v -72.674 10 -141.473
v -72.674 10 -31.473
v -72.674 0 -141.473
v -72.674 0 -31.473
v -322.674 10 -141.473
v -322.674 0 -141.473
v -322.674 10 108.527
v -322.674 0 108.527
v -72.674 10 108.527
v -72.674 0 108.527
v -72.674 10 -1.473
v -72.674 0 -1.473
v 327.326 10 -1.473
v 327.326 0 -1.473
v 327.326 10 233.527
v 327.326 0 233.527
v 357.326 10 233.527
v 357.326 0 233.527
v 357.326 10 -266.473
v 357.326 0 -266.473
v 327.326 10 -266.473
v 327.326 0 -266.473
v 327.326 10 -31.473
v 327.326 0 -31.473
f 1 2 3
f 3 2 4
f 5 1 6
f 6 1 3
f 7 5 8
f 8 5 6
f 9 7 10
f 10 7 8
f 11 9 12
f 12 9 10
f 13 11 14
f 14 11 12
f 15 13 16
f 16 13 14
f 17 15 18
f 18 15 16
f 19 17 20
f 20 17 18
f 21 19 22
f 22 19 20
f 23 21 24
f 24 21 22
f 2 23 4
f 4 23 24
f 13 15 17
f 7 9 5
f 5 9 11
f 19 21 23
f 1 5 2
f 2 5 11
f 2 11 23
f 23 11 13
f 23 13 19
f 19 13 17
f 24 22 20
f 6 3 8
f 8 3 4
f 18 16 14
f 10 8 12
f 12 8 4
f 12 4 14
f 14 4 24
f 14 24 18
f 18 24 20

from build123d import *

# Parameters (mm, degrees)
SKETCH1_W           = 250
SKETCH1_H           = 250
SKETCH1_W_2         = 400
SKETCH1_H_2         = 30
BOSS_EXTRUDE1_DEPTH = 10


with BuildPart() as part:
    # Sketch1 → Boss-Extrude1 (new body)
    with BuildSketch(Plane(origin=(0, 0, 0), x_dir=(1, 0, 0), z_dir=(0, 1, 0))):
        with Locations((-197.674418605, 16.472868217)):
            Rectangle(SKETCH1_W, SKETCH1_H)
        with Locations((127.325581395, 16.472868217)):
            Rectangle(SKETCH1_W_2, SKETCH1_H_2)
        Polygon((327.325581395, 266.472868217), (327.325581395, 31.472868217), (327.325581395, 1.472868217), (327.325581395, -233.527131783), (357.325581395, -233.527131783), (357.325581395, 266.472868217), align=None)
    extrude(amount=BOSS_EXTRUDE1_DEPTH)


solid = part.part
